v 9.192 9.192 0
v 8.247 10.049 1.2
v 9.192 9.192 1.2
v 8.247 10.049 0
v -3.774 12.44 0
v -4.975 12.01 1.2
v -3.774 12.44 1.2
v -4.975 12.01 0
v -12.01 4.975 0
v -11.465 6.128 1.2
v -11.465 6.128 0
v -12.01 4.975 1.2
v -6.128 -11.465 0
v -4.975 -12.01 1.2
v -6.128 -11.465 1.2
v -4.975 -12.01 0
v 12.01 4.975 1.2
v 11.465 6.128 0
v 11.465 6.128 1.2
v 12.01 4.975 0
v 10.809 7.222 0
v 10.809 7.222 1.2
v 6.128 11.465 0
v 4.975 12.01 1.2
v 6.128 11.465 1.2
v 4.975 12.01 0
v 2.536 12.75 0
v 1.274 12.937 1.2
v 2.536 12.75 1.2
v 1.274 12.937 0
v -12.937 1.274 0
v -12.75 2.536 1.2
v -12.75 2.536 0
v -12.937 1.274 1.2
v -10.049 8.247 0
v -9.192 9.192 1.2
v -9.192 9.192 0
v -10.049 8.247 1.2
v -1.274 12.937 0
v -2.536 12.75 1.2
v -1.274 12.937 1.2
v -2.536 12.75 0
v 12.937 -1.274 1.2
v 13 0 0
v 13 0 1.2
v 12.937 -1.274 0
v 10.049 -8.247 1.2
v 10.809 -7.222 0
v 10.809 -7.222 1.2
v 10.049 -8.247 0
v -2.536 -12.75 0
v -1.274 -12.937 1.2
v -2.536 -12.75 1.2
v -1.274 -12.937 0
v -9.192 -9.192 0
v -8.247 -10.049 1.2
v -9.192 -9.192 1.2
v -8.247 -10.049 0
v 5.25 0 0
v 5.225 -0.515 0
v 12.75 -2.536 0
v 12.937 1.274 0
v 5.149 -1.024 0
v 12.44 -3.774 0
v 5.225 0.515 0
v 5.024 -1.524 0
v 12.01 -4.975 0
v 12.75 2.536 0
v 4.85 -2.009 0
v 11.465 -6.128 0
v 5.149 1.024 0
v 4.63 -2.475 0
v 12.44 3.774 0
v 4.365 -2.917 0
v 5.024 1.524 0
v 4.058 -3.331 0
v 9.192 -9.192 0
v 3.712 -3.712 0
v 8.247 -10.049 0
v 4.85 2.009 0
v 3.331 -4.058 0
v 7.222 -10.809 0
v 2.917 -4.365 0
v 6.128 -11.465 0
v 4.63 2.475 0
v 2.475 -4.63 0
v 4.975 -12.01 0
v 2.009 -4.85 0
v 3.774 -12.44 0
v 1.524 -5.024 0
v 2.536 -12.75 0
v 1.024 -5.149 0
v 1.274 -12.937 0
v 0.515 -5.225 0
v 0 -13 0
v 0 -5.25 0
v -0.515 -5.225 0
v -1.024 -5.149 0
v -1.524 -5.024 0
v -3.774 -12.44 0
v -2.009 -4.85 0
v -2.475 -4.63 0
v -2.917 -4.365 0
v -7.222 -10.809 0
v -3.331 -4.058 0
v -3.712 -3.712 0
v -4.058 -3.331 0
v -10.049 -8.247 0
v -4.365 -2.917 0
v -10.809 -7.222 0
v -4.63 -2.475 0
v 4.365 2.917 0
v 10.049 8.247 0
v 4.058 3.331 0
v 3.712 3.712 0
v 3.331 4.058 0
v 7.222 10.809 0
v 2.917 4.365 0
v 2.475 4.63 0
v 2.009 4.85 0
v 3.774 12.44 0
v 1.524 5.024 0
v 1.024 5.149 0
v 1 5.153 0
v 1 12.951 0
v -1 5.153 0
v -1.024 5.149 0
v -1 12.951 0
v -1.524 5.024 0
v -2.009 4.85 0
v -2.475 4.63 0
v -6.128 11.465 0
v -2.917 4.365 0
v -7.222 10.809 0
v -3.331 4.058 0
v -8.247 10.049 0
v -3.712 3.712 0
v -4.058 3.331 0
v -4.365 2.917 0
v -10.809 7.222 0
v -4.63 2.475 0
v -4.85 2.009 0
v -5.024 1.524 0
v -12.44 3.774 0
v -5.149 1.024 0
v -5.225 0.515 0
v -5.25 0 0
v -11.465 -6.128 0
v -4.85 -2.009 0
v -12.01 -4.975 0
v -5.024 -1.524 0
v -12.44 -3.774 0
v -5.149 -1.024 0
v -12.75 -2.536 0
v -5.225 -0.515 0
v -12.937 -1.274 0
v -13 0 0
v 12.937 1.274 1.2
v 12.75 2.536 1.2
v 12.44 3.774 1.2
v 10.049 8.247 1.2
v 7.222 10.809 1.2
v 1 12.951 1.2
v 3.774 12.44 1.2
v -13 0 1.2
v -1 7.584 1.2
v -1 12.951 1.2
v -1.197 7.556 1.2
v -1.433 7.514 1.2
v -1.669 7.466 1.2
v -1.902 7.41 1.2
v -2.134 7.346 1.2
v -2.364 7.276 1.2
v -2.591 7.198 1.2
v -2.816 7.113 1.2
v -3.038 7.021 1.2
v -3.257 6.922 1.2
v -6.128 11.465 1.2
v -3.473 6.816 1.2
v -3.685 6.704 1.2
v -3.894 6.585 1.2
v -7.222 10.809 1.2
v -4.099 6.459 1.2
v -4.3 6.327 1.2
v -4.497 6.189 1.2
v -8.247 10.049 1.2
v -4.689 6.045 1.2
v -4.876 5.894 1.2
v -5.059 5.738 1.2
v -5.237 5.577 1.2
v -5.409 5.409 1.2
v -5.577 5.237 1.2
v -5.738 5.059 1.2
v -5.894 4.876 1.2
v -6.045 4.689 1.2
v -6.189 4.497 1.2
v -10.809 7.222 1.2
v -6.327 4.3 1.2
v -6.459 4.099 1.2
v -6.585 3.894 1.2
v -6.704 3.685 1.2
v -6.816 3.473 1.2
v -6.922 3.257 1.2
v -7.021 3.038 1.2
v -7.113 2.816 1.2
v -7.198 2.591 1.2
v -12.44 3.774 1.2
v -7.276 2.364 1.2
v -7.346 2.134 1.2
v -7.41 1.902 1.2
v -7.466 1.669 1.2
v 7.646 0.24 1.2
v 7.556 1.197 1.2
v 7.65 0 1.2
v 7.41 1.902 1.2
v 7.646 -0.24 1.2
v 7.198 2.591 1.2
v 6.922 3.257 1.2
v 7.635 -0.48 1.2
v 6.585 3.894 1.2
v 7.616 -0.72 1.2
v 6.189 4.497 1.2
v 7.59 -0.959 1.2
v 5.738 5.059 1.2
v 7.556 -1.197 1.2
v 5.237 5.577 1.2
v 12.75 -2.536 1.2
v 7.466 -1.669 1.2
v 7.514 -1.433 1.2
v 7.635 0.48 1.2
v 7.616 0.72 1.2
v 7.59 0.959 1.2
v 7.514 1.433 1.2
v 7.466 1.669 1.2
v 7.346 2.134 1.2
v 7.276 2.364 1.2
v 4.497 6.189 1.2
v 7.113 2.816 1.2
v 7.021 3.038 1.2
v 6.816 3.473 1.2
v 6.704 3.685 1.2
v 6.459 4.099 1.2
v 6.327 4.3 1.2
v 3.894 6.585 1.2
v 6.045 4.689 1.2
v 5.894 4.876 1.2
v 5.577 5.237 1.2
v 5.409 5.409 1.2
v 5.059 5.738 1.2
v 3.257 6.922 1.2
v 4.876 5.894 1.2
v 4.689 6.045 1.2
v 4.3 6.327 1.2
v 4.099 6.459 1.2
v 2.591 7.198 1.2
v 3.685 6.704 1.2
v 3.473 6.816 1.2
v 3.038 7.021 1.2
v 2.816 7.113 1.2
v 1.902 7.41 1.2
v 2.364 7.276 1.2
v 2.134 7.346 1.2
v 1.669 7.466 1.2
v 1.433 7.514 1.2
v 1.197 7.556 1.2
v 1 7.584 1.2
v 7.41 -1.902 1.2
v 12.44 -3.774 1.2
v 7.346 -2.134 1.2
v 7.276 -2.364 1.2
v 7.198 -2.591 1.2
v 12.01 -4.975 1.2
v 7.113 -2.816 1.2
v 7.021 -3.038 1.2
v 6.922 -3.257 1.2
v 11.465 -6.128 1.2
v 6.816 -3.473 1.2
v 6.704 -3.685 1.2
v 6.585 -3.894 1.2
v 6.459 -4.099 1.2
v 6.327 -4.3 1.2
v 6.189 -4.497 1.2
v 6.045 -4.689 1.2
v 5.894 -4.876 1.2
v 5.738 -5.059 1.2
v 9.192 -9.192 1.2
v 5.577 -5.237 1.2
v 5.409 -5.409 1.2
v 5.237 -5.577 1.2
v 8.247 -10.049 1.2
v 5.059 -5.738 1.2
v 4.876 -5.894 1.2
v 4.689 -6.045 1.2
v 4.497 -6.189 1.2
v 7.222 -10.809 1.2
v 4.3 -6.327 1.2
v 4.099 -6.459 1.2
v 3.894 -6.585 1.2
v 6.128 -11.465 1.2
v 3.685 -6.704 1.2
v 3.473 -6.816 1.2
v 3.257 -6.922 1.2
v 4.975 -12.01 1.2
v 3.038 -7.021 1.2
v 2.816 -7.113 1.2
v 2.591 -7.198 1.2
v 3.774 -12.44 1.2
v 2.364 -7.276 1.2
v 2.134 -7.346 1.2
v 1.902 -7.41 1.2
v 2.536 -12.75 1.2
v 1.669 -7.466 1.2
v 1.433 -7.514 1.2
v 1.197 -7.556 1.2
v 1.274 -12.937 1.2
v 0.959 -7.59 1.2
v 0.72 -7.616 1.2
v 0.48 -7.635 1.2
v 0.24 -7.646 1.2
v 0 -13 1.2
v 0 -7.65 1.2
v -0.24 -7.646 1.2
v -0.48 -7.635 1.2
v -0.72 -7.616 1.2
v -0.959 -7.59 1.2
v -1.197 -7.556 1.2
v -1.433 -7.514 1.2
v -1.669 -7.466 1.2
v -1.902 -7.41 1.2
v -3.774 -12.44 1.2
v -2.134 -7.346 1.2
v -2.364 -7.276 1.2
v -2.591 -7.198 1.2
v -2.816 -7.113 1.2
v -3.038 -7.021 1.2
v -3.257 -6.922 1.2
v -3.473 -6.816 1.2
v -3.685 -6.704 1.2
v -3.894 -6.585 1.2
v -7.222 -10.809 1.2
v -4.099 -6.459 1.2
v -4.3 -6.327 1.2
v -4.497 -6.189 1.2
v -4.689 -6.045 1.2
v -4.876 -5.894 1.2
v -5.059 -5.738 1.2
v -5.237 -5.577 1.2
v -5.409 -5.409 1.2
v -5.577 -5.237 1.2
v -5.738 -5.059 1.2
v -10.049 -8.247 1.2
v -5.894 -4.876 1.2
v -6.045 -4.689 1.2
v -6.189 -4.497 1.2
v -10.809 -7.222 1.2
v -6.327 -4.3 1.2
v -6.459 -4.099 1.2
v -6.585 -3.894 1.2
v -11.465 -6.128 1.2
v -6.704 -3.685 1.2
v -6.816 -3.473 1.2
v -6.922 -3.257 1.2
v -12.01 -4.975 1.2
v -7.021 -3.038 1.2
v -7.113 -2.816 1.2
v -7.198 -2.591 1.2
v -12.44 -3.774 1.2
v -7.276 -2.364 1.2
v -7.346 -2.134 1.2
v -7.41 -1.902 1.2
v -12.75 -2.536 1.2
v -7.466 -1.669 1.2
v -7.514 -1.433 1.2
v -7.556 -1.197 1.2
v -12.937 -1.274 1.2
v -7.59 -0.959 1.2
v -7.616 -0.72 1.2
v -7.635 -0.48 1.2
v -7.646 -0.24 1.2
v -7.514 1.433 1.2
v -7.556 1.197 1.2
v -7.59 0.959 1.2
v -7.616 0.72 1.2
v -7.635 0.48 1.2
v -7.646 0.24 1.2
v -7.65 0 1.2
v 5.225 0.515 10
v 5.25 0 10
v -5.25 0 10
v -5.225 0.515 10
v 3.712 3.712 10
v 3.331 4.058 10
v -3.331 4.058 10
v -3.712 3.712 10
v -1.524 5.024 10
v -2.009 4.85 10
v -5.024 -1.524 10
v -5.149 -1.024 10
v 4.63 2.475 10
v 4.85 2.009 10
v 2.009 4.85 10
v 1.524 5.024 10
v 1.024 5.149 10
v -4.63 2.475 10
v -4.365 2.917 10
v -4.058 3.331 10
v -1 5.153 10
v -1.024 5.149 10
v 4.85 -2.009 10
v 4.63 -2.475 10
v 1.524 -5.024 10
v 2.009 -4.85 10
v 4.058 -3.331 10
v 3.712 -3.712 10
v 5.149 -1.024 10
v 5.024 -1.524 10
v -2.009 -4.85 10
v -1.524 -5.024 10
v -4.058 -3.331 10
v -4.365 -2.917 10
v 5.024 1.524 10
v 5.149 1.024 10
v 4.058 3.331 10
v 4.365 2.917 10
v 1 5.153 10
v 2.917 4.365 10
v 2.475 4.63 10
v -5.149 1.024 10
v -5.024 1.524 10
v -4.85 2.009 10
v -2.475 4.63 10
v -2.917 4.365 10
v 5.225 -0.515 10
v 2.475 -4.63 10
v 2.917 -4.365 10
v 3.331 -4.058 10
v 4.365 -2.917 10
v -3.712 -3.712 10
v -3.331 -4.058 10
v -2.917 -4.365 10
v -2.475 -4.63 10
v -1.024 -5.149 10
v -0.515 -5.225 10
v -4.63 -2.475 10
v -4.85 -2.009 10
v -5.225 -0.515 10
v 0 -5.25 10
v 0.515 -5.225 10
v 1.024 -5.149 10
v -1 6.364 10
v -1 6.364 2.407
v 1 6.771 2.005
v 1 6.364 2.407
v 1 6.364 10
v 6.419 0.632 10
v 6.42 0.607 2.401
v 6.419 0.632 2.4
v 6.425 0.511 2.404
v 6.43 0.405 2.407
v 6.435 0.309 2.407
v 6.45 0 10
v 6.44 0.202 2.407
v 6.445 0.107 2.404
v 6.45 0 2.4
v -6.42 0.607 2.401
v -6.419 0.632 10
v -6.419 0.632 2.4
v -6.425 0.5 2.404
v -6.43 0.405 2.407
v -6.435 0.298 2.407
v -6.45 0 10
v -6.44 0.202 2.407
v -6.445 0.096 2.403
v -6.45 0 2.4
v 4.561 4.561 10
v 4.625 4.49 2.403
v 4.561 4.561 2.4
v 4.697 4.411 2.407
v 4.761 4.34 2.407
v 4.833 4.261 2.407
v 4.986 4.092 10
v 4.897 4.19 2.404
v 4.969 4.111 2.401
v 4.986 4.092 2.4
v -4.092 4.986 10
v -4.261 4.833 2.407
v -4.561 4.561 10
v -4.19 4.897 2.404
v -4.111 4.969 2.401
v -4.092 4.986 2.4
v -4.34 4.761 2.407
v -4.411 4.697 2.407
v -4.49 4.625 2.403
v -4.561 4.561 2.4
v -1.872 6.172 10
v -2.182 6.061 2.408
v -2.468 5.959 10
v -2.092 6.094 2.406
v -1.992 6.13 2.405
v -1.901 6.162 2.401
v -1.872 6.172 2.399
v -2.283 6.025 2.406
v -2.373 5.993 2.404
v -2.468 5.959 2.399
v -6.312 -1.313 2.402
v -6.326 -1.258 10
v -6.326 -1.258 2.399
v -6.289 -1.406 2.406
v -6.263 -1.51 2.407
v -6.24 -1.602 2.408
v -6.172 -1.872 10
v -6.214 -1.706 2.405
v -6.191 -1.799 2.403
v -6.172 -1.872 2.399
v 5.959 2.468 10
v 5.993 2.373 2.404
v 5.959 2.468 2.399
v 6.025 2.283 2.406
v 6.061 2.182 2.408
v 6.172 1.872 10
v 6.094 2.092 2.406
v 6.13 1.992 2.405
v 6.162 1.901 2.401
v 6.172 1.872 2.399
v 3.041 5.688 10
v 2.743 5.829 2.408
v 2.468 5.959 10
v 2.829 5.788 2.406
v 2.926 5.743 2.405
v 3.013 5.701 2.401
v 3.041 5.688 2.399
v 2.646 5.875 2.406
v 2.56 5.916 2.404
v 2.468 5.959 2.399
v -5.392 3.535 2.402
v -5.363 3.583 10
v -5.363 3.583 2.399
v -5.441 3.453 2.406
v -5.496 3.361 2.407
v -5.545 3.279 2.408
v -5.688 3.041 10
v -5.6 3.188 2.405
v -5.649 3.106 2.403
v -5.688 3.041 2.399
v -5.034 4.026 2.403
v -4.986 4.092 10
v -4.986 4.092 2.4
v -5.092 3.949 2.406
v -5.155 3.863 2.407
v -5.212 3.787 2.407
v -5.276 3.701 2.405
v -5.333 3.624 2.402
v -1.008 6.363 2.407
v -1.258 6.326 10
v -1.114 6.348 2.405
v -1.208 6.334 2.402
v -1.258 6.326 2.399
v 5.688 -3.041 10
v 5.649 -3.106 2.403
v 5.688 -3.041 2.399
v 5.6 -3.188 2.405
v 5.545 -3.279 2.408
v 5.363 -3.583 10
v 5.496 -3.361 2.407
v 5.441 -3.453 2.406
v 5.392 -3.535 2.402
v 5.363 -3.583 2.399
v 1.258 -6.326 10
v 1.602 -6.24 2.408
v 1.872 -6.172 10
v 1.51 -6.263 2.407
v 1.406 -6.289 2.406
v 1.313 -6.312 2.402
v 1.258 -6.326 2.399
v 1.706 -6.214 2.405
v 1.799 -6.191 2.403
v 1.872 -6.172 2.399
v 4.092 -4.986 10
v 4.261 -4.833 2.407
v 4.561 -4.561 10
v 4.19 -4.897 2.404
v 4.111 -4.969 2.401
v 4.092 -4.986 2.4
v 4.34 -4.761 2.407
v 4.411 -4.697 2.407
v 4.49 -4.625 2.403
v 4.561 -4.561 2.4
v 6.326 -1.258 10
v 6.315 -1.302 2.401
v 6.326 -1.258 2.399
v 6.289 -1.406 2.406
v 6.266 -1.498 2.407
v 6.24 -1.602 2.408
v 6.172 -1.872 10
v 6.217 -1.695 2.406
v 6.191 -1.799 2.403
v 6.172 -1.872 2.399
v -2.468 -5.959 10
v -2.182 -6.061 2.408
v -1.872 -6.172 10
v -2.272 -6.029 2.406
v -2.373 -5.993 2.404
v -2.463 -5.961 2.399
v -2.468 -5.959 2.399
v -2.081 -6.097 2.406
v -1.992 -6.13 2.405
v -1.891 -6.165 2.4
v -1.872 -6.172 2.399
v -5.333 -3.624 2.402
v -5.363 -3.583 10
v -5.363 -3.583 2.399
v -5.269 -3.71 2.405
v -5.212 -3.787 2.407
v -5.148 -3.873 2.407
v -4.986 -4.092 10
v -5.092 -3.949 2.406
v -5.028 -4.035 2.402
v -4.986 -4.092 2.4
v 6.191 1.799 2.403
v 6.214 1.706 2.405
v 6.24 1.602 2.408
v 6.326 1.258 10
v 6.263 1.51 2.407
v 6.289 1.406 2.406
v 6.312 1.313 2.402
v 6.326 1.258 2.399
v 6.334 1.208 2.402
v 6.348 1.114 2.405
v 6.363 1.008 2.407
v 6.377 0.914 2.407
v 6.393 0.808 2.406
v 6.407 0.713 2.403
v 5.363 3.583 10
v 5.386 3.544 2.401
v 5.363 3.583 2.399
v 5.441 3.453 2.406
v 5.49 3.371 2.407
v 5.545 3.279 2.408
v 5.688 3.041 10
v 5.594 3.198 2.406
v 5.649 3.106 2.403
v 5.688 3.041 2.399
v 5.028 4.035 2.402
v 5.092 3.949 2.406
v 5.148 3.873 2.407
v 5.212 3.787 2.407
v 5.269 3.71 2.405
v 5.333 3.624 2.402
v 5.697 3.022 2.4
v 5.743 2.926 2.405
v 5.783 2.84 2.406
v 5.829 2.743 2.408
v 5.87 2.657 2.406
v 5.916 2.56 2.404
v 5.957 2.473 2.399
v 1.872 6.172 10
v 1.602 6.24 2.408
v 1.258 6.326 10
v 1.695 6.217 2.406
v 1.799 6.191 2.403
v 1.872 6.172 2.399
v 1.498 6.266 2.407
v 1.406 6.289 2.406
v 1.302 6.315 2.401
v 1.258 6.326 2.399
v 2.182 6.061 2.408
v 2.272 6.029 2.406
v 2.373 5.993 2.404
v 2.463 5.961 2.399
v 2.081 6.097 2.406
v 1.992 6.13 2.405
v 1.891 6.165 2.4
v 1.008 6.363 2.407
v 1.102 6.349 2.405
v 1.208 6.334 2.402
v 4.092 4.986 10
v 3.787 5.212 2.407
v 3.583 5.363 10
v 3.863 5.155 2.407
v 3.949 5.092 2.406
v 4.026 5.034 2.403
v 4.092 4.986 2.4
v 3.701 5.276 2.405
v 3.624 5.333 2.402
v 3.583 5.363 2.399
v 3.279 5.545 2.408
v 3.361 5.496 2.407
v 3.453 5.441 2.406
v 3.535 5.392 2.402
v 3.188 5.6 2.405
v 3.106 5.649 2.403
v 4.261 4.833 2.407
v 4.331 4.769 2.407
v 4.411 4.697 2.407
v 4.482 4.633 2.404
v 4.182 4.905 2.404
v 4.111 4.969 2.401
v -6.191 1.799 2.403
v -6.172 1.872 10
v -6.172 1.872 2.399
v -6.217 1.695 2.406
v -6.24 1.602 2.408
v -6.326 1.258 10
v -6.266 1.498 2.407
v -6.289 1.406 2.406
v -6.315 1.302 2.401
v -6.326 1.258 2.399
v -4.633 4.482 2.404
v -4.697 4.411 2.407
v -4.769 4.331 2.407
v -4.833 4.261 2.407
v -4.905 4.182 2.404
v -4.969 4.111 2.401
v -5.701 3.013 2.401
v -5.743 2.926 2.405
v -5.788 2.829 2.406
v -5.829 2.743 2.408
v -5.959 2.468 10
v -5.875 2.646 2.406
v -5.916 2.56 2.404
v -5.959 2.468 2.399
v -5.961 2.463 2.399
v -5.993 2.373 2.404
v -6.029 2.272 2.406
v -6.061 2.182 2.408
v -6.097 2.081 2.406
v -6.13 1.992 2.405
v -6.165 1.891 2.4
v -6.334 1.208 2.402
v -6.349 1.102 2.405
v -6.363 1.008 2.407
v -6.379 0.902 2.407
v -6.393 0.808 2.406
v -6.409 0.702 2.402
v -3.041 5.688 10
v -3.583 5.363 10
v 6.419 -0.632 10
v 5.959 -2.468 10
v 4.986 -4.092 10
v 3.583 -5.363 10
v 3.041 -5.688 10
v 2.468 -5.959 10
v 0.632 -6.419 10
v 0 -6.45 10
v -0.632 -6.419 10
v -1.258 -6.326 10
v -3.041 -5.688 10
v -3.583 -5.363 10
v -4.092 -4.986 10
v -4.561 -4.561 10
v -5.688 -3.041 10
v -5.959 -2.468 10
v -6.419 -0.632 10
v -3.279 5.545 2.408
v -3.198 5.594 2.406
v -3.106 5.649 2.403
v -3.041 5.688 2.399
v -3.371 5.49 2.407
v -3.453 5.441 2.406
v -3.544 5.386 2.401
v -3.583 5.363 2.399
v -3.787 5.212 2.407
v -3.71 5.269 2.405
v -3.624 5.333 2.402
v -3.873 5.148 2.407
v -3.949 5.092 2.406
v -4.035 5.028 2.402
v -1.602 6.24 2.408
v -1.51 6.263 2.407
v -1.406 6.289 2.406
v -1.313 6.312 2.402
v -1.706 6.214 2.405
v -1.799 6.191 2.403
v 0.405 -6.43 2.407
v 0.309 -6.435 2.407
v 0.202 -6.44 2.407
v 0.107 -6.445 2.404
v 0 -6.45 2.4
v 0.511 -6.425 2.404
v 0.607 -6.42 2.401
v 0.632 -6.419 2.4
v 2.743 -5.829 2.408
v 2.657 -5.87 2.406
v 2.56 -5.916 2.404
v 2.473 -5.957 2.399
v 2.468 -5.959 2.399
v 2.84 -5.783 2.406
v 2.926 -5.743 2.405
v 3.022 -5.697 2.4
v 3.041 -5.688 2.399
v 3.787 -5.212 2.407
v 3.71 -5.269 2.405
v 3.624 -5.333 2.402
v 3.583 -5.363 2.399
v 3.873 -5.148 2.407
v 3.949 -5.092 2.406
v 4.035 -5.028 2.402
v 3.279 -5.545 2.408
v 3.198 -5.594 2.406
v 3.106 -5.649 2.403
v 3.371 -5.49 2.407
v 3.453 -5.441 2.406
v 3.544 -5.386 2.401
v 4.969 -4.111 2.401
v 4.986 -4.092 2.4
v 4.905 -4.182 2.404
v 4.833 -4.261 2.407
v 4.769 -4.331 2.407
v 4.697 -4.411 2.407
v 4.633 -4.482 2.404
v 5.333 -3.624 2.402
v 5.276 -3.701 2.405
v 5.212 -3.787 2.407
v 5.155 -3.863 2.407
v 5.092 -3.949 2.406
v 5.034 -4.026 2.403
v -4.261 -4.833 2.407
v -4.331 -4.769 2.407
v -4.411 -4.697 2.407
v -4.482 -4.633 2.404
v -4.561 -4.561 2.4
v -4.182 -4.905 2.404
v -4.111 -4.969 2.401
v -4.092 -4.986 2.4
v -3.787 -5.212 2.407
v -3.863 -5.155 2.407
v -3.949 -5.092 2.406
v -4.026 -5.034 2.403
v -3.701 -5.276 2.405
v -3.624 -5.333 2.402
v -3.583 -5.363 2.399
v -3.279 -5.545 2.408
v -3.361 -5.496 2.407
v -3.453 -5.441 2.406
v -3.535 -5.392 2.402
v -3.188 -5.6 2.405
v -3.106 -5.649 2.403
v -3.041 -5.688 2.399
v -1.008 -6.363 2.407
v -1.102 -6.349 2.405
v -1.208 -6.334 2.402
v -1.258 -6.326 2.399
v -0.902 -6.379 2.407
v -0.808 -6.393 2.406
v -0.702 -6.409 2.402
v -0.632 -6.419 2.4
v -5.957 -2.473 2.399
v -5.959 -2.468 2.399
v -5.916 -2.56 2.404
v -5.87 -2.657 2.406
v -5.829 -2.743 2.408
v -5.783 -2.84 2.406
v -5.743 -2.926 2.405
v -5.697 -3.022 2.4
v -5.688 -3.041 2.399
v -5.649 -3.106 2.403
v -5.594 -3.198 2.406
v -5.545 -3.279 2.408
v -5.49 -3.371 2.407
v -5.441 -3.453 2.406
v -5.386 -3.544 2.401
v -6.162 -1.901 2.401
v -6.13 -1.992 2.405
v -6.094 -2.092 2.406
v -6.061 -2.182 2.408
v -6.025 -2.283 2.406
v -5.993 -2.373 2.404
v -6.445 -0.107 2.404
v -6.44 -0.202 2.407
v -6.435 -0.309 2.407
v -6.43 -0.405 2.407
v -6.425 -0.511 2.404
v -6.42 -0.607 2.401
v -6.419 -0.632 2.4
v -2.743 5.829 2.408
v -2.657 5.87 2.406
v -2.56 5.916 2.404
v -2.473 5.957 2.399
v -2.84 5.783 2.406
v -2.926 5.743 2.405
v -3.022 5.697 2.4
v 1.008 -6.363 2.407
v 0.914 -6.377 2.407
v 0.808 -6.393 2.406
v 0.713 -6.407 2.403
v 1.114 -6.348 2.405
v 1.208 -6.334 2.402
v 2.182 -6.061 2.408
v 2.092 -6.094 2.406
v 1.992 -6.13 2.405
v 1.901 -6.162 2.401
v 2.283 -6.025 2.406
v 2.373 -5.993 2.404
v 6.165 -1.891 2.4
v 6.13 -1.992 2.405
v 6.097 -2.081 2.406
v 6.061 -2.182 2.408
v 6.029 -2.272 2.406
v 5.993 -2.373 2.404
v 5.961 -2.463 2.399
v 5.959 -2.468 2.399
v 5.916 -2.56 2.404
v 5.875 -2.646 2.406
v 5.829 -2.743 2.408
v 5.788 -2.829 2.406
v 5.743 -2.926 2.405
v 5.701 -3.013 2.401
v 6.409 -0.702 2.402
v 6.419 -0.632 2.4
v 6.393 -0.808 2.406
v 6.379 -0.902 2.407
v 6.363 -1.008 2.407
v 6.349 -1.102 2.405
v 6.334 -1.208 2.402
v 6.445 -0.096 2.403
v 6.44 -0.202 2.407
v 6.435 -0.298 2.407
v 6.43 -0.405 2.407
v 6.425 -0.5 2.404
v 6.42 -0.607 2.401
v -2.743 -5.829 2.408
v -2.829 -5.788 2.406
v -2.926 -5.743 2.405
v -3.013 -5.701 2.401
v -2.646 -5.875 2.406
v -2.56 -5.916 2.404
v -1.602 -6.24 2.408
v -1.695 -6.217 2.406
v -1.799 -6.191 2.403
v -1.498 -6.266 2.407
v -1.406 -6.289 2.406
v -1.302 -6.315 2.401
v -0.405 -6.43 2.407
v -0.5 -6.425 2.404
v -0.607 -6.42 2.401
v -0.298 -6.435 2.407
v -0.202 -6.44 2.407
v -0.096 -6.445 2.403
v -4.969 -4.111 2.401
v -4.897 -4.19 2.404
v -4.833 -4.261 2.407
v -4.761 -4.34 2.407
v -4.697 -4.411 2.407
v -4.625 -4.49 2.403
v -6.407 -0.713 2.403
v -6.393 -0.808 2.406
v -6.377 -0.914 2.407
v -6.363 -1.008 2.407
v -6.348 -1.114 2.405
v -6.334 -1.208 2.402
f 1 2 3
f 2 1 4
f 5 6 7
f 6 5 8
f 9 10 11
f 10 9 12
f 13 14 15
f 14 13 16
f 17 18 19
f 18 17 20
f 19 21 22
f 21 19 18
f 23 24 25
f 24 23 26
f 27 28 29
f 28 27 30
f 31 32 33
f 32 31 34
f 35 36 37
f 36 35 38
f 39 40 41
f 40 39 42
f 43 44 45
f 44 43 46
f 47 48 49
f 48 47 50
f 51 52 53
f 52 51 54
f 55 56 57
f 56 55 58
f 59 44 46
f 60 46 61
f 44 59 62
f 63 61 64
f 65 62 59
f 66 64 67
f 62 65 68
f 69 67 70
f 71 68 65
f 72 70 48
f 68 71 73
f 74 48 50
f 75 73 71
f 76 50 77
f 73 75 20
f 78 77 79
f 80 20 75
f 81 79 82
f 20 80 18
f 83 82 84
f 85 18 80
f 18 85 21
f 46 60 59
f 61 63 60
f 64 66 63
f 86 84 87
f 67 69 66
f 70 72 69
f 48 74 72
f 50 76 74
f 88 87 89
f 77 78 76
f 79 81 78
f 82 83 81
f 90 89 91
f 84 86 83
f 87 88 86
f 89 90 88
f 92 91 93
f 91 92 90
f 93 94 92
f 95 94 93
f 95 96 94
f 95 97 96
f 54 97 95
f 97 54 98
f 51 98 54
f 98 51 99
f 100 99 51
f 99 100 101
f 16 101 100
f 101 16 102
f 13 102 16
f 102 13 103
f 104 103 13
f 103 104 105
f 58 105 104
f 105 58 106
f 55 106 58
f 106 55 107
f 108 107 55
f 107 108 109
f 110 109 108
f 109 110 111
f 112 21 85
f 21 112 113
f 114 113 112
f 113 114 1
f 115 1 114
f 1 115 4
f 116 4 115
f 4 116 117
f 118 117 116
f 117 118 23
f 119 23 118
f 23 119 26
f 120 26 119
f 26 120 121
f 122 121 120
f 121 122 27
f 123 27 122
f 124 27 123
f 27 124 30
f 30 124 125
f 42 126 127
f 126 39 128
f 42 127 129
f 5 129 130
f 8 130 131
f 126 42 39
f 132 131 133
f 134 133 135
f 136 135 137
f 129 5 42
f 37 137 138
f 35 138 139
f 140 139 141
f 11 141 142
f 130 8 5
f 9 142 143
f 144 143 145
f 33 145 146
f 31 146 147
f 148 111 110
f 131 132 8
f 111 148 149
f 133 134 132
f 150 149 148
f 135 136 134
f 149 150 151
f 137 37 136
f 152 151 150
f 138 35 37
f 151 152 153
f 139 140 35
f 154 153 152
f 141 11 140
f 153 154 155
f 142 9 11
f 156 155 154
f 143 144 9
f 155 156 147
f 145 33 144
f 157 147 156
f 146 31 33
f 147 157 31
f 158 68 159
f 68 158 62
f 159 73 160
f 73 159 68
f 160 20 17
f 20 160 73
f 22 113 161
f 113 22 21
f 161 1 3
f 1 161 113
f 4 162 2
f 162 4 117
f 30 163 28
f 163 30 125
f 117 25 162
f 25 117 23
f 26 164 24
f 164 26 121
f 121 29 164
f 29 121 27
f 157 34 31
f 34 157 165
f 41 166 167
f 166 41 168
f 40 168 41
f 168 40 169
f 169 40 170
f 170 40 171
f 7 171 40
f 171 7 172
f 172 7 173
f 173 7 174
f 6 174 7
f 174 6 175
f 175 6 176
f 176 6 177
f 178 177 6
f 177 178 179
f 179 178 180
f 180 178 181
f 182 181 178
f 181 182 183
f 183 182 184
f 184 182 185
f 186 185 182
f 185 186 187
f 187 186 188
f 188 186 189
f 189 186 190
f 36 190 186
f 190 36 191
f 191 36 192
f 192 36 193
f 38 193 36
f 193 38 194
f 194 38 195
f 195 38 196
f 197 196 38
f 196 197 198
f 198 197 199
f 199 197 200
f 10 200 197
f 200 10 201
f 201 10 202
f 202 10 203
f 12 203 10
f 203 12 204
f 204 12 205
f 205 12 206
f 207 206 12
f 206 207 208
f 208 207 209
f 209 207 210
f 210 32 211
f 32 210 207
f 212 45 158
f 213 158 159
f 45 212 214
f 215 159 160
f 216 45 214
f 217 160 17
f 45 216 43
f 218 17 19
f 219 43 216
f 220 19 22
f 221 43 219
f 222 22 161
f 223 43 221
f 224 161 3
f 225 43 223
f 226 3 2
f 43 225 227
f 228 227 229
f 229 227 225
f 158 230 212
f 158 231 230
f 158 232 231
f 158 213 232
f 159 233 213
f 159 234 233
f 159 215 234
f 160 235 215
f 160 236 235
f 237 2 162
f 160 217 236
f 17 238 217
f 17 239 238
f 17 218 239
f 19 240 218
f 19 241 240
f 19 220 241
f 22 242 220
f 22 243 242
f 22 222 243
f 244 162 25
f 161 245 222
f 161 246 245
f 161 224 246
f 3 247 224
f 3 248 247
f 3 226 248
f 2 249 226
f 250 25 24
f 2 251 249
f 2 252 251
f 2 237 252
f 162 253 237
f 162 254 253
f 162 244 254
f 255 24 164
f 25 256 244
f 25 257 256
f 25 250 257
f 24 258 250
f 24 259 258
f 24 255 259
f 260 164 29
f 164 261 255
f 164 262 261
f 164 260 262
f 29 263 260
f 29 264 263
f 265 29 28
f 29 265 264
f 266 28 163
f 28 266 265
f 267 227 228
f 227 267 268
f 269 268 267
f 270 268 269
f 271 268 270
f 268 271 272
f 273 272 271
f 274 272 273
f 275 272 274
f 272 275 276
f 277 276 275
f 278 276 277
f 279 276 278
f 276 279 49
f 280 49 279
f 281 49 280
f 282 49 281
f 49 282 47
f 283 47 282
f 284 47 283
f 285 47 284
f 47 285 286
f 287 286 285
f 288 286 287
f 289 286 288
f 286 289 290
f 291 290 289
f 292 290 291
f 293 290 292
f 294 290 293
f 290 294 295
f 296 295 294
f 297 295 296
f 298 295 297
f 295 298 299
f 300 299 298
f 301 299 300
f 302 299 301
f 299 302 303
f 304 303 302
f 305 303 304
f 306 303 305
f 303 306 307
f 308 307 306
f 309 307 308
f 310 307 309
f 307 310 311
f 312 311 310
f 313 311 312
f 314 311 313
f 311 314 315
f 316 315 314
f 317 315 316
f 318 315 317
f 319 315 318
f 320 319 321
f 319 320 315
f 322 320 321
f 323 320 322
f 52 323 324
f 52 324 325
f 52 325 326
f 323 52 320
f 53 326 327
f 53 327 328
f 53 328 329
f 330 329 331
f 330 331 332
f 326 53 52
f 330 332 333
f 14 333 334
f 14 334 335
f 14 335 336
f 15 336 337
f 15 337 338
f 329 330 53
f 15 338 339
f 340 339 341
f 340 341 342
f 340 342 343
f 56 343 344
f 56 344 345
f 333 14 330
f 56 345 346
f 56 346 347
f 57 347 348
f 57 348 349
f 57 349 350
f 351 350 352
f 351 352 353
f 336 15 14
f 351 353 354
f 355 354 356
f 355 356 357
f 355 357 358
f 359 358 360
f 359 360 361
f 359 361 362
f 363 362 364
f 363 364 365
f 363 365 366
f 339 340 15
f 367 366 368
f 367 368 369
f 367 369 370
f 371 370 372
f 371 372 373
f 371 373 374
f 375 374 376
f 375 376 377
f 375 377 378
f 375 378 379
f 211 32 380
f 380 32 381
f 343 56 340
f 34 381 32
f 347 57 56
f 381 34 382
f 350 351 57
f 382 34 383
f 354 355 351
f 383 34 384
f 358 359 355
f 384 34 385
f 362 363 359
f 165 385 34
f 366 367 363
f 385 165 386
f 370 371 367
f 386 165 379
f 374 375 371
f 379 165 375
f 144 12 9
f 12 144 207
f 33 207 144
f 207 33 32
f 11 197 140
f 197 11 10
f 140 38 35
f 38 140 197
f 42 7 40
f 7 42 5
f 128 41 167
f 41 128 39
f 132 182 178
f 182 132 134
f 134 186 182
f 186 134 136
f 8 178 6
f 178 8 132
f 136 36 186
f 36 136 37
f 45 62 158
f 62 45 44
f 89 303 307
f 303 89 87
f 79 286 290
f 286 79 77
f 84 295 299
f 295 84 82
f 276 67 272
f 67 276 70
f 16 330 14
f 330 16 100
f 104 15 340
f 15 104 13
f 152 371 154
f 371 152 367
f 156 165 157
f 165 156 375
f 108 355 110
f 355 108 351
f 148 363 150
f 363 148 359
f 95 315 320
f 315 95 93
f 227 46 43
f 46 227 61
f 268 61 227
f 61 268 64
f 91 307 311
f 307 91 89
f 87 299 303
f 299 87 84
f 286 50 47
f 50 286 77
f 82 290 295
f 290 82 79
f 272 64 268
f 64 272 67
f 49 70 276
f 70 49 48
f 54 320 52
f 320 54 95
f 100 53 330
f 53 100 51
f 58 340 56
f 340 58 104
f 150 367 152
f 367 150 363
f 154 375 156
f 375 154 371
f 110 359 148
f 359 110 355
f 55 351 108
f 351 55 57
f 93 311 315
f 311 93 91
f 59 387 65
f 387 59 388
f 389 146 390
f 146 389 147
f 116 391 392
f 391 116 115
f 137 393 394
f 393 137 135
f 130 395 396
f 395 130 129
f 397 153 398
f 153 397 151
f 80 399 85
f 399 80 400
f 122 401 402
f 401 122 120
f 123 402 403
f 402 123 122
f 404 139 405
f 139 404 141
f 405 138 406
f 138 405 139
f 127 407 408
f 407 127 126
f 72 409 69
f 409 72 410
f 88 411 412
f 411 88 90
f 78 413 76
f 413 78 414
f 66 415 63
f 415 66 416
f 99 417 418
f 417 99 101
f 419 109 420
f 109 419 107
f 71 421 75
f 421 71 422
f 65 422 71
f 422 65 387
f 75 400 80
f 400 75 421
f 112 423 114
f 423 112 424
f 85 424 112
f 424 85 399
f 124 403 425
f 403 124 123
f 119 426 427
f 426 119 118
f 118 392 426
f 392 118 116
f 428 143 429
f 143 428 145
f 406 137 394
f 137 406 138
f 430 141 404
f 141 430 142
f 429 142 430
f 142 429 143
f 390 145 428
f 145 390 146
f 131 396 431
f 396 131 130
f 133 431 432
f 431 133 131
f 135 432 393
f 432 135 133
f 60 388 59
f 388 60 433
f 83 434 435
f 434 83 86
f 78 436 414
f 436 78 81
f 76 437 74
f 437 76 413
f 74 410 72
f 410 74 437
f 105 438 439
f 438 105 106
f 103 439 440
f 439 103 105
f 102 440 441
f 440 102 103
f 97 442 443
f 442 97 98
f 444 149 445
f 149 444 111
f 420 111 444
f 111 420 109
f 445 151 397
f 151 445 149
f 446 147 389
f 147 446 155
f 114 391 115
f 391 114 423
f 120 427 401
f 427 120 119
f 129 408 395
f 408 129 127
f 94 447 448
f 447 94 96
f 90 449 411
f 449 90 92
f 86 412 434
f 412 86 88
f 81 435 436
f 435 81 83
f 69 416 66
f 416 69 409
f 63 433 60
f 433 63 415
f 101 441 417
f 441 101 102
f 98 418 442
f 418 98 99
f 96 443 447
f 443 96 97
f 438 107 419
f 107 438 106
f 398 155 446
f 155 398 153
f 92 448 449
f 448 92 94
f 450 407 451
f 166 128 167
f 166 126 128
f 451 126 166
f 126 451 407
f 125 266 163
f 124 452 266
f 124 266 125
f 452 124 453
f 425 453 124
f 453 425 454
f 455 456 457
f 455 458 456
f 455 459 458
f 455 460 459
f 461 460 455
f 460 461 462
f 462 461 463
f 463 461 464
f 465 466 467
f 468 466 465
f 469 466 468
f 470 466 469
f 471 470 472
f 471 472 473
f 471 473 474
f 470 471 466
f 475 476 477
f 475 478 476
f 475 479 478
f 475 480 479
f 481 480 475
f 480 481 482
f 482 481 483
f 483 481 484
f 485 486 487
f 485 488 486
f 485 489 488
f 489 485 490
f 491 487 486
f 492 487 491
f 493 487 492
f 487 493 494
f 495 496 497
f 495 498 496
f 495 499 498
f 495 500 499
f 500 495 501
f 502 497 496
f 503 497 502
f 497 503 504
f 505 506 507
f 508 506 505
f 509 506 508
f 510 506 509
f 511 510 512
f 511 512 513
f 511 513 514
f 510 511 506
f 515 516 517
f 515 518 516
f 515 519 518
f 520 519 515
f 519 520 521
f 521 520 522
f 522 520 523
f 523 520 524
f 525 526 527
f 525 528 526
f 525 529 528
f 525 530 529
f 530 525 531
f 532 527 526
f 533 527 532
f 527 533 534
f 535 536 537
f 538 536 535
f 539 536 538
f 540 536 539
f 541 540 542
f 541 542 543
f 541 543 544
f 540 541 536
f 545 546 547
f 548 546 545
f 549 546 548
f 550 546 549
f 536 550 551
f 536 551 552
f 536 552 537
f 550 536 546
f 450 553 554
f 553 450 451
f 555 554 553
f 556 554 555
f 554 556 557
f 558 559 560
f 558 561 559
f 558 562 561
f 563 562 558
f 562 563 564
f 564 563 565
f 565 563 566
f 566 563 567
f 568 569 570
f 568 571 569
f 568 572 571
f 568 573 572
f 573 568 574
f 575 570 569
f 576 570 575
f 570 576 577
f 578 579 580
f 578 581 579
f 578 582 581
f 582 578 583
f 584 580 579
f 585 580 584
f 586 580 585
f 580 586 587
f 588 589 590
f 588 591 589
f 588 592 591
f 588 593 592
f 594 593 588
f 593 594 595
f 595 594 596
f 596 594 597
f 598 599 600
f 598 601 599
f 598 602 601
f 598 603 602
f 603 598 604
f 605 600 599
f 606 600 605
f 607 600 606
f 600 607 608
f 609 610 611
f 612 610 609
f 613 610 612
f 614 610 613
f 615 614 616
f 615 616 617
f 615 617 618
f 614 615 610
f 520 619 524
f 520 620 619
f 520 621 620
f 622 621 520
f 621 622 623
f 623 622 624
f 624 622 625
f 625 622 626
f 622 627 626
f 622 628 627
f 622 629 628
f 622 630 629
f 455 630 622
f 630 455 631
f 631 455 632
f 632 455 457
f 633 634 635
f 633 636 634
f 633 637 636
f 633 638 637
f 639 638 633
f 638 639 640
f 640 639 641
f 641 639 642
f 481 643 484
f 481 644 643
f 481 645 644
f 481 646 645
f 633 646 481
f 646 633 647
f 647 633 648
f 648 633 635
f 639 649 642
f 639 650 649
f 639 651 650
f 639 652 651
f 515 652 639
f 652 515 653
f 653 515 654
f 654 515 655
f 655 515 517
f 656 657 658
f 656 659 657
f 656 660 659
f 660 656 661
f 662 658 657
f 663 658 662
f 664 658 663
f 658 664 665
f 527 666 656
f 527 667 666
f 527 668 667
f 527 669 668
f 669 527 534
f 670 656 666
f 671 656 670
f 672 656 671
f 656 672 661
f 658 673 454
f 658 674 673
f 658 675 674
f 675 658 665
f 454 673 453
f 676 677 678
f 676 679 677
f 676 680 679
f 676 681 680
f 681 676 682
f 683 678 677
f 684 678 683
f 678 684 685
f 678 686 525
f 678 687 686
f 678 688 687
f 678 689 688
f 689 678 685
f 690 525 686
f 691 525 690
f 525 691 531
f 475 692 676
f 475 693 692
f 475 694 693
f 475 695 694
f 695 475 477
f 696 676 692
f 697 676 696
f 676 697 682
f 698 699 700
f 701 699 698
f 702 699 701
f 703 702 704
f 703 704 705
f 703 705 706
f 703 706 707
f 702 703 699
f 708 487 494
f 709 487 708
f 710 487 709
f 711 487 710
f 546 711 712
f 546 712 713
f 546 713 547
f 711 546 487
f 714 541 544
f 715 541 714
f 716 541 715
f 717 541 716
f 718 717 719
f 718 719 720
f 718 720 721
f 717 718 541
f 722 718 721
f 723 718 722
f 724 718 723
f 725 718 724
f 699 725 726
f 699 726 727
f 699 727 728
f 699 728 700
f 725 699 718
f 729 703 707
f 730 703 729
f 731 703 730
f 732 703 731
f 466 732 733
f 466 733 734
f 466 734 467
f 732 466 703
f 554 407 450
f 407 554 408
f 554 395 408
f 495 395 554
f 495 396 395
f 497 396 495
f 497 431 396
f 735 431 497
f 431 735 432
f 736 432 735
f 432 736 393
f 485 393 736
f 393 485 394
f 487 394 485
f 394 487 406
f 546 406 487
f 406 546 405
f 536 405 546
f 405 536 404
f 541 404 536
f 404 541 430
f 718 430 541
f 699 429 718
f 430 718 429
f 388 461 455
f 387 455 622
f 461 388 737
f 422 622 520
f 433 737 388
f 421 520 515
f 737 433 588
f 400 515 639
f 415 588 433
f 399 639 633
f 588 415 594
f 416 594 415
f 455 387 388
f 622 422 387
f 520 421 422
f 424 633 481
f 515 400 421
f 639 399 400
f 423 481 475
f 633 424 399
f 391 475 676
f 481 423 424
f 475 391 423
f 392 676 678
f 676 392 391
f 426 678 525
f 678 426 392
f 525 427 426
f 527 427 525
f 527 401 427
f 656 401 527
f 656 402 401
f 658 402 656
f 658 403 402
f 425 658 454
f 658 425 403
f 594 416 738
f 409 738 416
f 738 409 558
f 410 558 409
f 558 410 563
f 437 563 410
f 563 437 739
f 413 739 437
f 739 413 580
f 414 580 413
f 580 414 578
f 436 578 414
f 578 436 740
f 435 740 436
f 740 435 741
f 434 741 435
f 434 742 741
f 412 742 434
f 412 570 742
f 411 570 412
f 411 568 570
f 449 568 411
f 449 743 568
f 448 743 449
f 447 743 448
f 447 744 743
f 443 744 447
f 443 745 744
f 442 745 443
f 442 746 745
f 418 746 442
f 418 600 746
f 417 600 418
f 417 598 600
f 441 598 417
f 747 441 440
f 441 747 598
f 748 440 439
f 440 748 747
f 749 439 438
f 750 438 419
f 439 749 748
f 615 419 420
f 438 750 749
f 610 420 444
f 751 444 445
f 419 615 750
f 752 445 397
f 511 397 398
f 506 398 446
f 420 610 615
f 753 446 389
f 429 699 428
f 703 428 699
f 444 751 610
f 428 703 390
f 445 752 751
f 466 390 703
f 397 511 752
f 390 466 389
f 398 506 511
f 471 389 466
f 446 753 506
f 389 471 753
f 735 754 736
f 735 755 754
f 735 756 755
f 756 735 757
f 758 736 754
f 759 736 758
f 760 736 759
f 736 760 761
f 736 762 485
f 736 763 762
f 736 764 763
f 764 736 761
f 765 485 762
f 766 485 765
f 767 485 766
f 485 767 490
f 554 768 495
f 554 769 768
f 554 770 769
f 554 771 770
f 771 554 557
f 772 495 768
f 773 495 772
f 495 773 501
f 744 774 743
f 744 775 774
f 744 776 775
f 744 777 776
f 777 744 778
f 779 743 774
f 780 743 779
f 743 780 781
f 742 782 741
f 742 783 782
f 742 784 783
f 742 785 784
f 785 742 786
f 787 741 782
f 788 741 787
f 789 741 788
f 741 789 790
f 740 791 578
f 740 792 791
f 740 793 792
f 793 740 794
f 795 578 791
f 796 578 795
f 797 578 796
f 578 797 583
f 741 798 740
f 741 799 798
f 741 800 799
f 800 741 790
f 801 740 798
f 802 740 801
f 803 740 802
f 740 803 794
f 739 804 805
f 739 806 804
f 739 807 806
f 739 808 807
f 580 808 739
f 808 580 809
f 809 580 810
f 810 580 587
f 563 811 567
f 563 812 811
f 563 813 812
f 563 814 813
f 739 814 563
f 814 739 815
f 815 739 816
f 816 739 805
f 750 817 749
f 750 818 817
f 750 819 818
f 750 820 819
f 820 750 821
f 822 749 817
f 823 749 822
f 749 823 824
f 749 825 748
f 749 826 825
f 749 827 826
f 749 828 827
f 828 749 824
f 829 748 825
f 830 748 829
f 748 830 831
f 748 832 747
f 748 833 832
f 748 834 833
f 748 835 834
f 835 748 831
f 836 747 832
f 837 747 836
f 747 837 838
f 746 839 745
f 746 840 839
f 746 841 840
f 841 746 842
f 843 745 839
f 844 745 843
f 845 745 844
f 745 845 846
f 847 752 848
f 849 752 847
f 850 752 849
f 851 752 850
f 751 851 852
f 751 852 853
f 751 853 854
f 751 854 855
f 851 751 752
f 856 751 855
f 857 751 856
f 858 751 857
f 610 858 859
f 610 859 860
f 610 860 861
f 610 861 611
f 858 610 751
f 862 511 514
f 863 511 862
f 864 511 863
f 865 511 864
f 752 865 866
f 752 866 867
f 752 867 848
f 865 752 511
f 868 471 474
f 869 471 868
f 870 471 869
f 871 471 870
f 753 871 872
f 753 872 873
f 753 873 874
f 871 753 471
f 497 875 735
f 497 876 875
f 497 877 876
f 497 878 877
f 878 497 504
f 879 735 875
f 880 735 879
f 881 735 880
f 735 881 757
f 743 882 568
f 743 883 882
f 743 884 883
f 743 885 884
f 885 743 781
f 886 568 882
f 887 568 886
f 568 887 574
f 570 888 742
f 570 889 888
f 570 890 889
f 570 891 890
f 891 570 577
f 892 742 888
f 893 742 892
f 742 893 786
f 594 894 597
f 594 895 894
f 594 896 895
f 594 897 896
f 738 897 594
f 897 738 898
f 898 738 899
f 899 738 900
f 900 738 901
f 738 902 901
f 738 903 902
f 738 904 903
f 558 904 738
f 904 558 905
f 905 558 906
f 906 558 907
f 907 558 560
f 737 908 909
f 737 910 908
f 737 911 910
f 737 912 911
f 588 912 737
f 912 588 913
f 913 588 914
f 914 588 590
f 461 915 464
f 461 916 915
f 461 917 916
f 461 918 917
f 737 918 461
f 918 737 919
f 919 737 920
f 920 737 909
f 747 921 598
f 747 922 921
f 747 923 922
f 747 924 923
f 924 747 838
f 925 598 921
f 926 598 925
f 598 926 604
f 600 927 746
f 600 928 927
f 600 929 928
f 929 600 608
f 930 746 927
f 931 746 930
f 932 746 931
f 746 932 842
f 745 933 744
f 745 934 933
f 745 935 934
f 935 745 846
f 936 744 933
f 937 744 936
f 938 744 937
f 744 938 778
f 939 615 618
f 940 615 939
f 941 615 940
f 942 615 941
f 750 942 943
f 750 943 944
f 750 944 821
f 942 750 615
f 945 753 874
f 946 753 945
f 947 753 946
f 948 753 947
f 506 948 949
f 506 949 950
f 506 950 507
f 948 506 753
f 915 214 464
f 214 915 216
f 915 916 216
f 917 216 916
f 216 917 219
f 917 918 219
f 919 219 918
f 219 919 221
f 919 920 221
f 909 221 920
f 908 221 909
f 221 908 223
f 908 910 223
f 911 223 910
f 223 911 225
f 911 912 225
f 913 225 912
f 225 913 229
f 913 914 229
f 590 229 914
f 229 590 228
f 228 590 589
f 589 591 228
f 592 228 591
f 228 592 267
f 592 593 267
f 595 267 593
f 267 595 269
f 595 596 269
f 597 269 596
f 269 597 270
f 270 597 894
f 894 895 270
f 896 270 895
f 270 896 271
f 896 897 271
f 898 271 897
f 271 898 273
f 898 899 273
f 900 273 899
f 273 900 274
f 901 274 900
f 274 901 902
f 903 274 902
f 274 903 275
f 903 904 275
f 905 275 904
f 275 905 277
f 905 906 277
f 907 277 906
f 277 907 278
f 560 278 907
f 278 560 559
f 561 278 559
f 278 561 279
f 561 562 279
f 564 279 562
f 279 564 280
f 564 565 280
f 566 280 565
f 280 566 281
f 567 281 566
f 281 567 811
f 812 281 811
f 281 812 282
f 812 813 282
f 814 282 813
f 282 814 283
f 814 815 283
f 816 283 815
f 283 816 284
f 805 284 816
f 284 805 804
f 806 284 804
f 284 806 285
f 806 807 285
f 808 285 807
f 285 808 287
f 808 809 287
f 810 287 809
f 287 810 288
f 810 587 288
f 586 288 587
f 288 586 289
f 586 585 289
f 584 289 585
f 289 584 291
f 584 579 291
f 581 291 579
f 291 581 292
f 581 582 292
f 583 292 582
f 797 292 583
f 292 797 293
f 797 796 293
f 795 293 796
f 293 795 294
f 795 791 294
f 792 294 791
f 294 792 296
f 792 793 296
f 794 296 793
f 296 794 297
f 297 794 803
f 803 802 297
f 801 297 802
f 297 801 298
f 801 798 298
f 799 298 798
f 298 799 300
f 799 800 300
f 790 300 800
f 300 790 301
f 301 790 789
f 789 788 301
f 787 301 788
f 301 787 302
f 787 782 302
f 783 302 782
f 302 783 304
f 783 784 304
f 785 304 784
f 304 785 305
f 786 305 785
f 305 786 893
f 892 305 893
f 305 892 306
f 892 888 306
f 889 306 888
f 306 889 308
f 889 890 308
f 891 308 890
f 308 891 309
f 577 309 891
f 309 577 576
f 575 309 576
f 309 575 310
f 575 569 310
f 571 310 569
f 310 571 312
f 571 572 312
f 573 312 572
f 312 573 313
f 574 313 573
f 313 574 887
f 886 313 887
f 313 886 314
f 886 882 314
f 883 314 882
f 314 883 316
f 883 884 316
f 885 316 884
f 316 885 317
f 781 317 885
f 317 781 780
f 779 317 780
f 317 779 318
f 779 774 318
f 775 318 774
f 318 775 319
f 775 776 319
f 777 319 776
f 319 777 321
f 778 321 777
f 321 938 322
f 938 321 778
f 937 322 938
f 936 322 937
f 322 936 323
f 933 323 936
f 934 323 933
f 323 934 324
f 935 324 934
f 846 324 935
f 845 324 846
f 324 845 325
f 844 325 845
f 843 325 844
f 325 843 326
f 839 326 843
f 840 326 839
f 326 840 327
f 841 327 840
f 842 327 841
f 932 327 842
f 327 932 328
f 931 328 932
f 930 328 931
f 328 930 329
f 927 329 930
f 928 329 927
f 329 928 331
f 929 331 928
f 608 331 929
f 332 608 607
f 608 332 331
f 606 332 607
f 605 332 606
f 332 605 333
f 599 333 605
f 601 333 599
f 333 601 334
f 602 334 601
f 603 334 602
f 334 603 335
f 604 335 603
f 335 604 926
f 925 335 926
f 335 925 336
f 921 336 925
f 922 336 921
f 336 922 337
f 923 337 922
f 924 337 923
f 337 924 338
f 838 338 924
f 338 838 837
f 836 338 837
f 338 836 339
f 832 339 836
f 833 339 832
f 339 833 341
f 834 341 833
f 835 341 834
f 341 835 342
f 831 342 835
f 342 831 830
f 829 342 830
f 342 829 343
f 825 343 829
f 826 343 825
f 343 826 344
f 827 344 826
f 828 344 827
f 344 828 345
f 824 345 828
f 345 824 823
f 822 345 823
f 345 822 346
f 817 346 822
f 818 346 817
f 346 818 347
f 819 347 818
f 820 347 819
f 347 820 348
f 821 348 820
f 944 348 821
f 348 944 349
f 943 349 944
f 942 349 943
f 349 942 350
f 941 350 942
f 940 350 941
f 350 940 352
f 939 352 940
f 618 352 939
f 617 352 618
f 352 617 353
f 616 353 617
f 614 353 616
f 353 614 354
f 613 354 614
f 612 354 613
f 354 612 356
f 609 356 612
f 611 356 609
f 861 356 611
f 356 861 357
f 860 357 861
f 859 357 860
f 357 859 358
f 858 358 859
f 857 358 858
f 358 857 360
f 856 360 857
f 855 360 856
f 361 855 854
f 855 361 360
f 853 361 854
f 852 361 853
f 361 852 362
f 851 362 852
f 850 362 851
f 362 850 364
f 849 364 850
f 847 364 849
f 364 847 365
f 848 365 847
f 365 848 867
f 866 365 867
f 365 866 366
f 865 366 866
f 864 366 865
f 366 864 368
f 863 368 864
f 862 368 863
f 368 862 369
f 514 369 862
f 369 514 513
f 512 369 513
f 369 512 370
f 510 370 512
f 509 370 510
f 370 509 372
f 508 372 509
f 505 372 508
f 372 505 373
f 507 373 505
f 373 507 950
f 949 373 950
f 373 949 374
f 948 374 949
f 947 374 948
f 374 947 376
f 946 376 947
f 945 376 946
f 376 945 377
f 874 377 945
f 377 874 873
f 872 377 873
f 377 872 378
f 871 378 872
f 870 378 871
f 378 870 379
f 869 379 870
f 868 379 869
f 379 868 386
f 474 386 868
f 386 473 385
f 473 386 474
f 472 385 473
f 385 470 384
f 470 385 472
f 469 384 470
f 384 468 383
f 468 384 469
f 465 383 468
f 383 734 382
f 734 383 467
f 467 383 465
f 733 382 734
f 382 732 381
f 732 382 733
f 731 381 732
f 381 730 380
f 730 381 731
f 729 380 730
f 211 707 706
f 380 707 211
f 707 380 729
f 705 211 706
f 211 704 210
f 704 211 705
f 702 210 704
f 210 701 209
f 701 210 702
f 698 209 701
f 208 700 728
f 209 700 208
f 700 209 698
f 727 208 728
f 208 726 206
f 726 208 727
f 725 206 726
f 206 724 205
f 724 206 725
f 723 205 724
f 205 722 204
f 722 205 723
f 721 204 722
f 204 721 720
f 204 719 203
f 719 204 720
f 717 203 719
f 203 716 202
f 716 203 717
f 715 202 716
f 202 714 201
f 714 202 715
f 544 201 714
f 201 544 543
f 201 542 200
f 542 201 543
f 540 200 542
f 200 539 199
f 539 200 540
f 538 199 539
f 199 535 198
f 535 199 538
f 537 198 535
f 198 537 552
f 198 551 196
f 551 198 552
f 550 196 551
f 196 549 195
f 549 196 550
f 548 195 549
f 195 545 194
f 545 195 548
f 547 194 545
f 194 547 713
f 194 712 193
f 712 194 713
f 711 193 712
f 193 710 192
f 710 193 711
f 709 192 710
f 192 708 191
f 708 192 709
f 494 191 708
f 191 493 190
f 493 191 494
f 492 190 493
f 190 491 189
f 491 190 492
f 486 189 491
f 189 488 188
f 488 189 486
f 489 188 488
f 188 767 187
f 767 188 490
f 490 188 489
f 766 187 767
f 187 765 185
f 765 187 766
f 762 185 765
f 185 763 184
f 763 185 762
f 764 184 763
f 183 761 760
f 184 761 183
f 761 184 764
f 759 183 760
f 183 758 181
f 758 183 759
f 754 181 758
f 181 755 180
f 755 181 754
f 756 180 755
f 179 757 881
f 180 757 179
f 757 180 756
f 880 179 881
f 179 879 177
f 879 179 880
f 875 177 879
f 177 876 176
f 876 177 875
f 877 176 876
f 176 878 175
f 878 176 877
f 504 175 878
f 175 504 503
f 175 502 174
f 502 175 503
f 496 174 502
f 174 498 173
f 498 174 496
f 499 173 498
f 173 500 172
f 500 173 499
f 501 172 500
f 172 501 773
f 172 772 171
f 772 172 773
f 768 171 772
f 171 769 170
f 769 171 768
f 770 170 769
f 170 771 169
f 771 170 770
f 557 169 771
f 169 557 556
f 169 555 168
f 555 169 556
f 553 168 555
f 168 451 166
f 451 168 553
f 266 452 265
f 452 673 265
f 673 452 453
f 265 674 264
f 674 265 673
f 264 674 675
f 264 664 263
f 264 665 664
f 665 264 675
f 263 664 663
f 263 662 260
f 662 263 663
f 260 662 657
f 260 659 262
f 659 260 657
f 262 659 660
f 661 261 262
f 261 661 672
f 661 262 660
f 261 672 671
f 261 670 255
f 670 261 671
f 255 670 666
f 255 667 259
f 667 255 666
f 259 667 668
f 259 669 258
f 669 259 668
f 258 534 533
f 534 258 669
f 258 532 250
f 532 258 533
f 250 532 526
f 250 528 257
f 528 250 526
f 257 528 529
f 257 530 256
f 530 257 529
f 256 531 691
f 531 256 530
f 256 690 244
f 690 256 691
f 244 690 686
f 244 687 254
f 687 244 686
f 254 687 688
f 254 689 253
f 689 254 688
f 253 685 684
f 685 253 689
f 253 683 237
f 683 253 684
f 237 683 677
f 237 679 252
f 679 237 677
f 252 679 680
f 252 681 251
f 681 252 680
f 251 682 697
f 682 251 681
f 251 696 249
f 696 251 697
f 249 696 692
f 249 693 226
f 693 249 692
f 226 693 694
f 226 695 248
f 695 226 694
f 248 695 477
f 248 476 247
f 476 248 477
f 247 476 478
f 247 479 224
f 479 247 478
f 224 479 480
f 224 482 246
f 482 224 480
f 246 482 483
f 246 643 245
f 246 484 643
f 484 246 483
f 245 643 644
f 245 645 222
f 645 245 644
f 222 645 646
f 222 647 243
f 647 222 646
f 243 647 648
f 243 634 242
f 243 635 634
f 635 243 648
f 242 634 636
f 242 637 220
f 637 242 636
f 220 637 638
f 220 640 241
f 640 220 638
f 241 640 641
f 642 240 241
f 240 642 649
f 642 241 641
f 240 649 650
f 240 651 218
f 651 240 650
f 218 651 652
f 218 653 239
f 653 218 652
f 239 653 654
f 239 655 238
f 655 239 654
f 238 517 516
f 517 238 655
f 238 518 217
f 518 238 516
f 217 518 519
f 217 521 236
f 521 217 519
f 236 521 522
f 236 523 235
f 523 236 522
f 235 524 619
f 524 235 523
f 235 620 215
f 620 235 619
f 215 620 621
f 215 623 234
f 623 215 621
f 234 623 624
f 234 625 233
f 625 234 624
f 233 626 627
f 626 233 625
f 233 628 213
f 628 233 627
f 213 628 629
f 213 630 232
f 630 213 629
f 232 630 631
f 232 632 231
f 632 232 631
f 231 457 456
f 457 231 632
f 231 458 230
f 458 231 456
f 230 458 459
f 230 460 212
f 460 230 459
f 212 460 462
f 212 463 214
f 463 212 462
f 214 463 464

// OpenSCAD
// pen holder for plotting robot

$fn = 64;

// holder variables
penDiameter = 10.5; // 12.5mm works with Sharpie Fine
                  // 11.75 for Visa-vis
                  // 10 mm for Crayola Washables
penRadius = penDiameter / 2;
barrelHieght = 10;
barrelWallThickness = 3;
baseThickness = 3;
cornerRounding = 2;

hat_thickness = 1.2;

hatDiameter = 26;
slice = 2;


module penHolder(){

	difference(){
		//// lip
        cylinder(hat_thickness, hatDiameter / 2, hatDiameter / 2);
        
        // pen hole
        cylinder(baseThickness, penRadius, penRadius);
        

        // expansion slice
        translate([ -slice / 2, 0, 0])
        cube([  slice, hatDiameter, barrelHieght]); 
	}

	// pen barrel
	difference(){
        // barrel

        barrel();

		// bore
		cylinder(   barrelHieght * 2, penRadius, penRadius);

        
        // expansion slice
        translate([ -slice / 2, 0, 0])
        cube([  slice, hatDiameter * 2, hatDiameter * 2]);   
	};  
}

module barrel()
        union(){{
		cylinder(	barrelHieght, 
					penRadius + hat_thickness, 
					penRadius + hat_thickness);


        rotate_extrude($fn=200)
        //rotate([90, 0, 0])
        translate([-penRadius - 2 * hat_thickness, hat_thickness, 0])
        polygon(points=[[2,2], [2,0], [0,0]]);
        }
    }
//barrel();
penHolder();
